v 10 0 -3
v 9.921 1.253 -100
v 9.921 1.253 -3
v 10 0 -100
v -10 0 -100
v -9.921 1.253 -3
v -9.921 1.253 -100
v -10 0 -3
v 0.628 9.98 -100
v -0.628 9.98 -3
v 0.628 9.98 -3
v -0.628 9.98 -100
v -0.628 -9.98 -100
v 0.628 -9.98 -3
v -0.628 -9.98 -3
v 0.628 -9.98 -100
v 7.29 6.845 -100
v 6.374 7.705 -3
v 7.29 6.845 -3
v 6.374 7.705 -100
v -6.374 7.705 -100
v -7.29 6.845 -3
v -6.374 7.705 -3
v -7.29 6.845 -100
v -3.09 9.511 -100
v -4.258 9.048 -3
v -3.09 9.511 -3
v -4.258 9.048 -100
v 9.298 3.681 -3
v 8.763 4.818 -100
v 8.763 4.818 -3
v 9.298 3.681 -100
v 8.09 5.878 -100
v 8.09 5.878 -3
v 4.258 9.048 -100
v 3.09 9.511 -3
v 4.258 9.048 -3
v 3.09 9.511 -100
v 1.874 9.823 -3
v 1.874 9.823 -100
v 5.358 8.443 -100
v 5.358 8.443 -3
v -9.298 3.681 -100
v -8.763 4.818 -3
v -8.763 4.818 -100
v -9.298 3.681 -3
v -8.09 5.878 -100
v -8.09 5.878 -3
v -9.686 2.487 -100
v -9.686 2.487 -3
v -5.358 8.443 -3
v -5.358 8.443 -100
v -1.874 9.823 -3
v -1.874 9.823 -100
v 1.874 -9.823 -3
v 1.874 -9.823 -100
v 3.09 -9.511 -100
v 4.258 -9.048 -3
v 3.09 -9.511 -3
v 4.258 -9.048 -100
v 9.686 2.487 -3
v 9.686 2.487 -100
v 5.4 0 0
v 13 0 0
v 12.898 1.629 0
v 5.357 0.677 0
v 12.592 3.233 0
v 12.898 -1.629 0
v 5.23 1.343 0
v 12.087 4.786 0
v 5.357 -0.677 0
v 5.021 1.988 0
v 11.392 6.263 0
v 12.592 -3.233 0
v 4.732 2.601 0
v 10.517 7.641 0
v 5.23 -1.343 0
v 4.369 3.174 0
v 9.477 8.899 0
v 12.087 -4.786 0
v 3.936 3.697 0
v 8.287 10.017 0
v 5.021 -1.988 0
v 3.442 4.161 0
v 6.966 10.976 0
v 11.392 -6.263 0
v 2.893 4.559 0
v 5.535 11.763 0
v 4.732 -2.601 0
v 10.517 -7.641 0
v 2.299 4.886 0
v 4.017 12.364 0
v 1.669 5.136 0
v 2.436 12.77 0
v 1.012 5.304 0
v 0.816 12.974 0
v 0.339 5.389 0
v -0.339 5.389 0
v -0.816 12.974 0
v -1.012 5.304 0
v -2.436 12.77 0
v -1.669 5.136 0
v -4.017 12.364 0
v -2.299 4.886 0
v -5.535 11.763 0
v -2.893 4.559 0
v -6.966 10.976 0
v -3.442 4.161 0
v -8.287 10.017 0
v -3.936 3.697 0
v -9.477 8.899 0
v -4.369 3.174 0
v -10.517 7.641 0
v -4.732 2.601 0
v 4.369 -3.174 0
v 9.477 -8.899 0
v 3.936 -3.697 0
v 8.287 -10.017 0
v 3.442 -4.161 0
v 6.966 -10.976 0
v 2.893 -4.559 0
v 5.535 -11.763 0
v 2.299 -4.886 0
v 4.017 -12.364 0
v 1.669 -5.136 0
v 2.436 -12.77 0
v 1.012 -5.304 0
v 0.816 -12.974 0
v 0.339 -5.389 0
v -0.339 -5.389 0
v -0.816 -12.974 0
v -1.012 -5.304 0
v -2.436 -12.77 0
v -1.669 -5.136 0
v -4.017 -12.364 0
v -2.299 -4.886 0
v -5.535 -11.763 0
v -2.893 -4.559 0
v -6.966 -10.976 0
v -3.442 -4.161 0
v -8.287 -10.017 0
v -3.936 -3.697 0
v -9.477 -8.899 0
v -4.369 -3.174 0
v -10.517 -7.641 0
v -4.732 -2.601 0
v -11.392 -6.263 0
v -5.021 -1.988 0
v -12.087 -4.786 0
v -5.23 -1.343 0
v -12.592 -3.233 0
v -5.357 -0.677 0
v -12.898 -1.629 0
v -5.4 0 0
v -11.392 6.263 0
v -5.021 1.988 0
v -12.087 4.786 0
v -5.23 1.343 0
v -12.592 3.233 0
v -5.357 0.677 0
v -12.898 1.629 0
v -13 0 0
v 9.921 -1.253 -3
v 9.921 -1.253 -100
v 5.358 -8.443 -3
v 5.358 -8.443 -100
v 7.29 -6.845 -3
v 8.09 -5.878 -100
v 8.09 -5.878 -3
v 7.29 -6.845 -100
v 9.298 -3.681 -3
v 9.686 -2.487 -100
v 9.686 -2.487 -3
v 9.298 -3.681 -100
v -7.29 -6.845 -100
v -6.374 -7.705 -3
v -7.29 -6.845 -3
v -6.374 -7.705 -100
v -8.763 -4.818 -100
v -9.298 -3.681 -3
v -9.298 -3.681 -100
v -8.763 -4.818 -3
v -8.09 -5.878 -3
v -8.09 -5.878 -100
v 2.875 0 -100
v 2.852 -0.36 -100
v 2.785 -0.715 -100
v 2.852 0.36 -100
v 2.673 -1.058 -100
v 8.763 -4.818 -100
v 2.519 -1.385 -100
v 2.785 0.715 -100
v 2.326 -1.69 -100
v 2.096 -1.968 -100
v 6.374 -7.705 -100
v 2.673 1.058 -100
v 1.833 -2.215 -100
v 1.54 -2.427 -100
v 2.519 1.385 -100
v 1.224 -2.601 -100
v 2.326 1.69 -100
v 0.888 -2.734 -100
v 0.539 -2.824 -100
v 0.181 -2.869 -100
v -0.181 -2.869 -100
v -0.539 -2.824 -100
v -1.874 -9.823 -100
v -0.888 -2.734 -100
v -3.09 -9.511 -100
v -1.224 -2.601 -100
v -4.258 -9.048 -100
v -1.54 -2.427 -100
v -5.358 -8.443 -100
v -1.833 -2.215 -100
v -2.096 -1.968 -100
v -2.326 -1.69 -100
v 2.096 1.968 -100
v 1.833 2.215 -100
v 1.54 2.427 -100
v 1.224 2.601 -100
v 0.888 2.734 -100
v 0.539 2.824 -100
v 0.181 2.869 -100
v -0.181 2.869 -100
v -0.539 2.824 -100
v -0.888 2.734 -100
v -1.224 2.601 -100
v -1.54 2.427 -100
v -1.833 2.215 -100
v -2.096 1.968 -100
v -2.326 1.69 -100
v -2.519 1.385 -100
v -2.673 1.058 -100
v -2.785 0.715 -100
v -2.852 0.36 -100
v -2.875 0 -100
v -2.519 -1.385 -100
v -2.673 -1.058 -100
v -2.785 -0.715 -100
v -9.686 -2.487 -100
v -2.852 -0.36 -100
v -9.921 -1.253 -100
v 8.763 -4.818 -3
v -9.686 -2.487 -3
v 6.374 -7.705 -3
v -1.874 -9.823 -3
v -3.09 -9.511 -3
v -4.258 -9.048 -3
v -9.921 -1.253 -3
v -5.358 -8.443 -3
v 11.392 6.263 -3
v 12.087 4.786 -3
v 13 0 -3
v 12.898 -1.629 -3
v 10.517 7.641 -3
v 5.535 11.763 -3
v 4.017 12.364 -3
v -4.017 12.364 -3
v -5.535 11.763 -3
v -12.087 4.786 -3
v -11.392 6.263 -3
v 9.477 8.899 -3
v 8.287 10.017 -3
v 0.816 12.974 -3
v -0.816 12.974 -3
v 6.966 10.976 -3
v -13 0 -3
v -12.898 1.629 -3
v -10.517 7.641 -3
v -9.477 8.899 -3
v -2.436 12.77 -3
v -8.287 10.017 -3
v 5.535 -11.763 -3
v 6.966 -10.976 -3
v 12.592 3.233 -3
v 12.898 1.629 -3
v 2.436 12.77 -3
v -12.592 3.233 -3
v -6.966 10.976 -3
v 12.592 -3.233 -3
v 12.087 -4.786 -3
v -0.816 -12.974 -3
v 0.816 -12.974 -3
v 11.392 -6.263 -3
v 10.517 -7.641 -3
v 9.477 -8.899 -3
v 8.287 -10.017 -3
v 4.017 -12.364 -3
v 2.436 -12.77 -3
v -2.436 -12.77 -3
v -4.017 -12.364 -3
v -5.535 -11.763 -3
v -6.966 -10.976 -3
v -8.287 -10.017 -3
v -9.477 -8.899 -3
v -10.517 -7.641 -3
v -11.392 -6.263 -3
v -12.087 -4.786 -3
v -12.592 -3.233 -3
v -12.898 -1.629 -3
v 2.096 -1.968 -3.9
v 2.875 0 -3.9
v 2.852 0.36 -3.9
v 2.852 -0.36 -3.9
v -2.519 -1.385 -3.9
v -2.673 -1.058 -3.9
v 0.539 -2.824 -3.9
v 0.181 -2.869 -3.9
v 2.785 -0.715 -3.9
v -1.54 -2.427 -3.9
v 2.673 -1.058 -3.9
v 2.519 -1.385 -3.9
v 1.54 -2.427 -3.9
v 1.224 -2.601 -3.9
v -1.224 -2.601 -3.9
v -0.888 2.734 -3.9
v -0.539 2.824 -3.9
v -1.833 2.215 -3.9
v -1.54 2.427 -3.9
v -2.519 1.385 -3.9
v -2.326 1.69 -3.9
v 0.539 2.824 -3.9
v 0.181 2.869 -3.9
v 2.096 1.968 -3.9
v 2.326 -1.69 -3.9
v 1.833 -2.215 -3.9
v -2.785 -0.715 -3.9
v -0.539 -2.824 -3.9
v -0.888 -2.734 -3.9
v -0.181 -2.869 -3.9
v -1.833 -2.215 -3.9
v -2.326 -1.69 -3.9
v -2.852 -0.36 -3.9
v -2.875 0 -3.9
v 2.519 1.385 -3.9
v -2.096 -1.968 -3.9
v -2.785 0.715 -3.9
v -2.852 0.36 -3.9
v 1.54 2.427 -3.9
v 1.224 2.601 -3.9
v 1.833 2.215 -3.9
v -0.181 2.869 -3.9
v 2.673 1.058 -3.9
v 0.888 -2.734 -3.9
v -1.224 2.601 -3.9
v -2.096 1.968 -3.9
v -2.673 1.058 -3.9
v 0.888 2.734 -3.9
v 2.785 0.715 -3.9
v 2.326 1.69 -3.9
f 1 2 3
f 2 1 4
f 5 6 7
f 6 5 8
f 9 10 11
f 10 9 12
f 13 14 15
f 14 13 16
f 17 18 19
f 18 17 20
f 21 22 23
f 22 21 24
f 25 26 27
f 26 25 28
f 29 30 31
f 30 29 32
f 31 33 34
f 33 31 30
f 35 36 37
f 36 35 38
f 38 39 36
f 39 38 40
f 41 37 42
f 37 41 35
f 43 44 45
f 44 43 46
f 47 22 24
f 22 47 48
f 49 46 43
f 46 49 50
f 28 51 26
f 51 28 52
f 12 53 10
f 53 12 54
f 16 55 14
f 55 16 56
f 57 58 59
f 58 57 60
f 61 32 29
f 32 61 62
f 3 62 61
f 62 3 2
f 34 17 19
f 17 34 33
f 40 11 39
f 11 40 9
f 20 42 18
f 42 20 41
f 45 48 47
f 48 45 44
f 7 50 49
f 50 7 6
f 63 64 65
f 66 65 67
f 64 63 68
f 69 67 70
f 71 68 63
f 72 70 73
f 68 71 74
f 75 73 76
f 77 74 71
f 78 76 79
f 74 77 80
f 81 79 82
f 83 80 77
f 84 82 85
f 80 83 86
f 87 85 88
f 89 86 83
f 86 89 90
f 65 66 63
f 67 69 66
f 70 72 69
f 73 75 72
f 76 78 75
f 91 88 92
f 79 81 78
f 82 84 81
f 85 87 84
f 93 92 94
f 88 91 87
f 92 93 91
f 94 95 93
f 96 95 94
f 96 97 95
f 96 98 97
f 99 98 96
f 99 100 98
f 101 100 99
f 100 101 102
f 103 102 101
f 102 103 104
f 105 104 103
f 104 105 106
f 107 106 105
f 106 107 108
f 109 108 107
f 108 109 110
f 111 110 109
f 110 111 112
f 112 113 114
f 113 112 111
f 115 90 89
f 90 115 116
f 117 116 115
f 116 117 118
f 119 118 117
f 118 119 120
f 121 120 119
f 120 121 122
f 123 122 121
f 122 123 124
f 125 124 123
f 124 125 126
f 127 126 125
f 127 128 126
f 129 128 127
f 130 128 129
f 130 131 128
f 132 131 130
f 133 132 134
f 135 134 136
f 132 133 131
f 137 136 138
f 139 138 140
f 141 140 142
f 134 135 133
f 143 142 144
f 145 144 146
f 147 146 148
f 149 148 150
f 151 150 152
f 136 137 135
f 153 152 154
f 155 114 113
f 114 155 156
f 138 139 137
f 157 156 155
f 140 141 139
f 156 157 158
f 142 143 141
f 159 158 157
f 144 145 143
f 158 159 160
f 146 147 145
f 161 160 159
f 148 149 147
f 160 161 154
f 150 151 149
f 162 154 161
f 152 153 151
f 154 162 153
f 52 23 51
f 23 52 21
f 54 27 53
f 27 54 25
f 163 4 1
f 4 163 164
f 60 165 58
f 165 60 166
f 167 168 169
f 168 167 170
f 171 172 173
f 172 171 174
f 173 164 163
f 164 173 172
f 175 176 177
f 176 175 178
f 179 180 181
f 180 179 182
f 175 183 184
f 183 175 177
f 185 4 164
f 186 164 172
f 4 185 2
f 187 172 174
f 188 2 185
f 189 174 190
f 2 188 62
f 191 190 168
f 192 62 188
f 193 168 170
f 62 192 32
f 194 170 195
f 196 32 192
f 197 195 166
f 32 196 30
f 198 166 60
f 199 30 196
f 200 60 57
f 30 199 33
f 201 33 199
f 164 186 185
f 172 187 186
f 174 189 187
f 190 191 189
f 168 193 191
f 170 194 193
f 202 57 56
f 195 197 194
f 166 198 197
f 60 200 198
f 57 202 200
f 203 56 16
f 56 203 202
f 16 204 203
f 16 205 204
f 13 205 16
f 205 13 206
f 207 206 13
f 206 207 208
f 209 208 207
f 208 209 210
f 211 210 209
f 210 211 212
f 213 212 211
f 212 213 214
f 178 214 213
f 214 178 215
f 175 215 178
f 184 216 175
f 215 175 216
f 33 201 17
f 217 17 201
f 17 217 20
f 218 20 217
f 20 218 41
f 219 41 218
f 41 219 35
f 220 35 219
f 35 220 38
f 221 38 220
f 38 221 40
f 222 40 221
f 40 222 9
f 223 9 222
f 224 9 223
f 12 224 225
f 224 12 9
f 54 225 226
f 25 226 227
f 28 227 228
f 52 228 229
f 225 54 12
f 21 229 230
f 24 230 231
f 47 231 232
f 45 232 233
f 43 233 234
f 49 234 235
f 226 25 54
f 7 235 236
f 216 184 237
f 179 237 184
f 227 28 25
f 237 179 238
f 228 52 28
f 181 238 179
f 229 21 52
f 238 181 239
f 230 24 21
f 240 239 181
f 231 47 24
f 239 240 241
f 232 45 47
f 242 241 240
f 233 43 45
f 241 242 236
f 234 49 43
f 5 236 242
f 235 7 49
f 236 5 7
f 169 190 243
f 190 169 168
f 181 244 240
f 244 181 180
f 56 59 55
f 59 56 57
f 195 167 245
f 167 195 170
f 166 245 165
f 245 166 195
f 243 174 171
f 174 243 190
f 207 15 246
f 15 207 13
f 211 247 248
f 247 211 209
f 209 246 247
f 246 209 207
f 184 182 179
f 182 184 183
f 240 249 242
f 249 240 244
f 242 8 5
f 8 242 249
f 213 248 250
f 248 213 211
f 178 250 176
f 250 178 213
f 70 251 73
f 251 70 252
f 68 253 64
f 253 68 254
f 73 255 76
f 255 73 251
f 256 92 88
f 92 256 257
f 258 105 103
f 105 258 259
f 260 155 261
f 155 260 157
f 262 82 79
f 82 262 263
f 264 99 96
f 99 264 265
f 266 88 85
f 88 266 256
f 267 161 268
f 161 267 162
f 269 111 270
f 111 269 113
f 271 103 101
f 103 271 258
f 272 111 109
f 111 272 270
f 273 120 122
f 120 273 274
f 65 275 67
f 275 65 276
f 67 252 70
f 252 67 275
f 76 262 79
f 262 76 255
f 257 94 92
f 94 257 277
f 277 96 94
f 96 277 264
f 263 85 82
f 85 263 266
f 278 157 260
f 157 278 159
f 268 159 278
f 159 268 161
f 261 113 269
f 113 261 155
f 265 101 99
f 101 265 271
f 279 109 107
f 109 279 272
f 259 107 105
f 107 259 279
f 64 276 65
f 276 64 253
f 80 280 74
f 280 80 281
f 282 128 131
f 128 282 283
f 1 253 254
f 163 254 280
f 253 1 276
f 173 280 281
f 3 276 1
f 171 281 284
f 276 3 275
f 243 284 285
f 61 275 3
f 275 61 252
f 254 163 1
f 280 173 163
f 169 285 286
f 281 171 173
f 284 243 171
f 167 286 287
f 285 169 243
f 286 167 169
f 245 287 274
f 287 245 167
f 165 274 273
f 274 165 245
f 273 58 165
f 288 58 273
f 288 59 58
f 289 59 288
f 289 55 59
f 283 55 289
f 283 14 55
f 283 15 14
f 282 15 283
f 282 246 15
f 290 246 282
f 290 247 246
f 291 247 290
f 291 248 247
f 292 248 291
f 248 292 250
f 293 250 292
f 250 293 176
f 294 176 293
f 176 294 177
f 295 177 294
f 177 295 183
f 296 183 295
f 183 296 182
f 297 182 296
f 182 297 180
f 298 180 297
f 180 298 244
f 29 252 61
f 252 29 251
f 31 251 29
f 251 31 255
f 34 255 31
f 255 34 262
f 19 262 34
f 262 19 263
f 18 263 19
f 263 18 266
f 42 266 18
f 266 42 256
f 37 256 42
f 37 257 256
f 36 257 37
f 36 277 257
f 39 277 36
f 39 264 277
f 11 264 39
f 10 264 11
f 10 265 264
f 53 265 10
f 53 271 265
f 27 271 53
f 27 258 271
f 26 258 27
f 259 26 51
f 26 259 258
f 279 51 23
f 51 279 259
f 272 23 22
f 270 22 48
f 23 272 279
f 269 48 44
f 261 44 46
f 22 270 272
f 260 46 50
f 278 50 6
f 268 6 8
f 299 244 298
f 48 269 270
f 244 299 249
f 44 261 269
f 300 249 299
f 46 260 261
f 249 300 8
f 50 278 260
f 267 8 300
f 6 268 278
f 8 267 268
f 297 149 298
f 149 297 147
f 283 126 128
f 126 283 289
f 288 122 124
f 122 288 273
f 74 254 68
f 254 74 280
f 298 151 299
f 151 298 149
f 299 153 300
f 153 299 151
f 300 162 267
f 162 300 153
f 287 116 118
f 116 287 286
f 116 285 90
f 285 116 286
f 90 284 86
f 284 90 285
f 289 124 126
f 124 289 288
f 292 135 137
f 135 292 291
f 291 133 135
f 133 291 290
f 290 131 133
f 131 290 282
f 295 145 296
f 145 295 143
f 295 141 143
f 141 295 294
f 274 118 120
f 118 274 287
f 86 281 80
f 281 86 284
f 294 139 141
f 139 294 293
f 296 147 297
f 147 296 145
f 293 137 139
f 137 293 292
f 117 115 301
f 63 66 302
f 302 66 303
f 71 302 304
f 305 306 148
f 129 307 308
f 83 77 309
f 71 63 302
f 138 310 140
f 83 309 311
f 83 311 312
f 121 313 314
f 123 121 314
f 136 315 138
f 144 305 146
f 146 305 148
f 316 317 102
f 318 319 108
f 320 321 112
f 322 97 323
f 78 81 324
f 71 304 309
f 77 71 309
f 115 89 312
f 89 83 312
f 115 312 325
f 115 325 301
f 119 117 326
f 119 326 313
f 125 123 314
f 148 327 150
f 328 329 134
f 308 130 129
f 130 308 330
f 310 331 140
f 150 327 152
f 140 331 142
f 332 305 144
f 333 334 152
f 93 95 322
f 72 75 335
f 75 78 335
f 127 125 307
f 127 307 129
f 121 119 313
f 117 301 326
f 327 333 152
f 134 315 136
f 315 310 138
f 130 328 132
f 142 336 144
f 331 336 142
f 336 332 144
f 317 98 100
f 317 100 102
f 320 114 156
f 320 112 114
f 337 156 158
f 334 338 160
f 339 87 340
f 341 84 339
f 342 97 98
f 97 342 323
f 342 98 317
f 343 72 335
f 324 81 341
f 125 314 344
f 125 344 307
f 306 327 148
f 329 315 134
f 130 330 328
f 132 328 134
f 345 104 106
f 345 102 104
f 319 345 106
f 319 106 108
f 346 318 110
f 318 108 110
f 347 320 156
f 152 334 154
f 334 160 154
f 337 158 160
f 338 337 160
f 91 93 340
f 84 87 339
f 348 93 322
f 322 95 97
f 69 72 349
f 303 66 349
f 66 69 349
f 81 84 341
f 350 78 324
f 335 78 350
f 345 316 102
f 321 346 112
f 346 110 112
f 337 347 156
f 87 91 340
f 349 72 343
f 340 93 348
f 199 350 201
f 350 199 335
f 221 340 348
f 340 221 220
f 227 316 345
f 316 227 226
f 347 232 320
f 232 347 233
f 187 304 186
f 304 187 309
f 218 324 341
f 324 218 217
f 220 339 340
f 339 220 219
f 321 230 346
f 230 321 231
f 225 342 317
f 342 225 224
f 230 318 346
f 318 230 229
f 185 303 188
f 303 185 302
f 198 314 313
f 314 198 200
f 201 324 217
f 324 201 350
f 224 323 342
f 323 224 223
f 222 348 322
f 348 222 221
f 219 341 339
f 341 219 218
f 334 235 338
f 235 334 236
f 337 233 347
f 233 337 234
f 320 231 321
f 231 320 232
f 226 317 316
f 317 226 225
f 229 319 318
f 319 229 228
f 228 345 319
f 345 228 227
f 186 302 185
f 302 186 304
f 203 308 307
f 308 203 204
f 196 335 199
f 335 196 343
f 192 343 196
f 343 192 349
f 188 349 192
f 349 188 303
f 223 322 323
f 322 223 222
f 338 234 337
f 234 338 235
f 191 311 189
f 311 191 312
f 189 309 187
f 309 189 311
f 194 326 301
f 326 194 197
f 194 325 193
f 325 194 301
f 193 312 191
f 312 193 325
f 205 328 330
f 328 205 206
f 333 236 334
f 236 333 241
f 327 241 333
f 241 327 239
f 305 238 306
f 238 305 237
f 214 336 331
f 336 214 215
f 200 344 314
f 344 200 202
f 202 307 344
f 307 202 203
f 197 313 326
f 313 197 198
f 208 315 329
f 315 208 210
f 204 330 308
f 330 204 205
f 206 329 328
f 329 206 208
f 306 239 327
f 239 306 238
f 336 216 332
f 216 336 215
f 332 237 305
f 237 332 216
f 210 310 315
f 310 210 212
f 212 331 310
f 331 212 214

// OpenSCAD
$fn = 50;


difference() {
	union() {
		translate(v = [0, 0, -100.0000000000]) {
			cylinder(h = 100, r = 10.0000000000);
		}
		translate(v = [0, 0, -3.0000000000]) {
			cylinder(h = 3, r = 13.0000000000);
		}
	}
	union() {
		translate(v = [0, 0, 0]) {
			rotate(a = [0, 0, 0]) {
				difference() {
					union() {
						#translate(v = [0, 0, -100.0000000000]) {
							cylinder(h = 100, r = 2.6000000000);
						}
						#translate(v = [0, 0, -3.9000000000]) {
							cylinder(h = 3.9000000000, r1 = 2.8750000000, r2 = 5.4000000000);
						}
						#translate(v = [0, 0, -100.0000000000]) {
							cylinder(h = 100, r = 2.8750000000);
						}
						#translate(v = [0, 0, -100.0000000000]) {
							cylinder(h = 100, r = 2.6000000000);
						}
					}
					union();
				}
			}
		}
	}
}
